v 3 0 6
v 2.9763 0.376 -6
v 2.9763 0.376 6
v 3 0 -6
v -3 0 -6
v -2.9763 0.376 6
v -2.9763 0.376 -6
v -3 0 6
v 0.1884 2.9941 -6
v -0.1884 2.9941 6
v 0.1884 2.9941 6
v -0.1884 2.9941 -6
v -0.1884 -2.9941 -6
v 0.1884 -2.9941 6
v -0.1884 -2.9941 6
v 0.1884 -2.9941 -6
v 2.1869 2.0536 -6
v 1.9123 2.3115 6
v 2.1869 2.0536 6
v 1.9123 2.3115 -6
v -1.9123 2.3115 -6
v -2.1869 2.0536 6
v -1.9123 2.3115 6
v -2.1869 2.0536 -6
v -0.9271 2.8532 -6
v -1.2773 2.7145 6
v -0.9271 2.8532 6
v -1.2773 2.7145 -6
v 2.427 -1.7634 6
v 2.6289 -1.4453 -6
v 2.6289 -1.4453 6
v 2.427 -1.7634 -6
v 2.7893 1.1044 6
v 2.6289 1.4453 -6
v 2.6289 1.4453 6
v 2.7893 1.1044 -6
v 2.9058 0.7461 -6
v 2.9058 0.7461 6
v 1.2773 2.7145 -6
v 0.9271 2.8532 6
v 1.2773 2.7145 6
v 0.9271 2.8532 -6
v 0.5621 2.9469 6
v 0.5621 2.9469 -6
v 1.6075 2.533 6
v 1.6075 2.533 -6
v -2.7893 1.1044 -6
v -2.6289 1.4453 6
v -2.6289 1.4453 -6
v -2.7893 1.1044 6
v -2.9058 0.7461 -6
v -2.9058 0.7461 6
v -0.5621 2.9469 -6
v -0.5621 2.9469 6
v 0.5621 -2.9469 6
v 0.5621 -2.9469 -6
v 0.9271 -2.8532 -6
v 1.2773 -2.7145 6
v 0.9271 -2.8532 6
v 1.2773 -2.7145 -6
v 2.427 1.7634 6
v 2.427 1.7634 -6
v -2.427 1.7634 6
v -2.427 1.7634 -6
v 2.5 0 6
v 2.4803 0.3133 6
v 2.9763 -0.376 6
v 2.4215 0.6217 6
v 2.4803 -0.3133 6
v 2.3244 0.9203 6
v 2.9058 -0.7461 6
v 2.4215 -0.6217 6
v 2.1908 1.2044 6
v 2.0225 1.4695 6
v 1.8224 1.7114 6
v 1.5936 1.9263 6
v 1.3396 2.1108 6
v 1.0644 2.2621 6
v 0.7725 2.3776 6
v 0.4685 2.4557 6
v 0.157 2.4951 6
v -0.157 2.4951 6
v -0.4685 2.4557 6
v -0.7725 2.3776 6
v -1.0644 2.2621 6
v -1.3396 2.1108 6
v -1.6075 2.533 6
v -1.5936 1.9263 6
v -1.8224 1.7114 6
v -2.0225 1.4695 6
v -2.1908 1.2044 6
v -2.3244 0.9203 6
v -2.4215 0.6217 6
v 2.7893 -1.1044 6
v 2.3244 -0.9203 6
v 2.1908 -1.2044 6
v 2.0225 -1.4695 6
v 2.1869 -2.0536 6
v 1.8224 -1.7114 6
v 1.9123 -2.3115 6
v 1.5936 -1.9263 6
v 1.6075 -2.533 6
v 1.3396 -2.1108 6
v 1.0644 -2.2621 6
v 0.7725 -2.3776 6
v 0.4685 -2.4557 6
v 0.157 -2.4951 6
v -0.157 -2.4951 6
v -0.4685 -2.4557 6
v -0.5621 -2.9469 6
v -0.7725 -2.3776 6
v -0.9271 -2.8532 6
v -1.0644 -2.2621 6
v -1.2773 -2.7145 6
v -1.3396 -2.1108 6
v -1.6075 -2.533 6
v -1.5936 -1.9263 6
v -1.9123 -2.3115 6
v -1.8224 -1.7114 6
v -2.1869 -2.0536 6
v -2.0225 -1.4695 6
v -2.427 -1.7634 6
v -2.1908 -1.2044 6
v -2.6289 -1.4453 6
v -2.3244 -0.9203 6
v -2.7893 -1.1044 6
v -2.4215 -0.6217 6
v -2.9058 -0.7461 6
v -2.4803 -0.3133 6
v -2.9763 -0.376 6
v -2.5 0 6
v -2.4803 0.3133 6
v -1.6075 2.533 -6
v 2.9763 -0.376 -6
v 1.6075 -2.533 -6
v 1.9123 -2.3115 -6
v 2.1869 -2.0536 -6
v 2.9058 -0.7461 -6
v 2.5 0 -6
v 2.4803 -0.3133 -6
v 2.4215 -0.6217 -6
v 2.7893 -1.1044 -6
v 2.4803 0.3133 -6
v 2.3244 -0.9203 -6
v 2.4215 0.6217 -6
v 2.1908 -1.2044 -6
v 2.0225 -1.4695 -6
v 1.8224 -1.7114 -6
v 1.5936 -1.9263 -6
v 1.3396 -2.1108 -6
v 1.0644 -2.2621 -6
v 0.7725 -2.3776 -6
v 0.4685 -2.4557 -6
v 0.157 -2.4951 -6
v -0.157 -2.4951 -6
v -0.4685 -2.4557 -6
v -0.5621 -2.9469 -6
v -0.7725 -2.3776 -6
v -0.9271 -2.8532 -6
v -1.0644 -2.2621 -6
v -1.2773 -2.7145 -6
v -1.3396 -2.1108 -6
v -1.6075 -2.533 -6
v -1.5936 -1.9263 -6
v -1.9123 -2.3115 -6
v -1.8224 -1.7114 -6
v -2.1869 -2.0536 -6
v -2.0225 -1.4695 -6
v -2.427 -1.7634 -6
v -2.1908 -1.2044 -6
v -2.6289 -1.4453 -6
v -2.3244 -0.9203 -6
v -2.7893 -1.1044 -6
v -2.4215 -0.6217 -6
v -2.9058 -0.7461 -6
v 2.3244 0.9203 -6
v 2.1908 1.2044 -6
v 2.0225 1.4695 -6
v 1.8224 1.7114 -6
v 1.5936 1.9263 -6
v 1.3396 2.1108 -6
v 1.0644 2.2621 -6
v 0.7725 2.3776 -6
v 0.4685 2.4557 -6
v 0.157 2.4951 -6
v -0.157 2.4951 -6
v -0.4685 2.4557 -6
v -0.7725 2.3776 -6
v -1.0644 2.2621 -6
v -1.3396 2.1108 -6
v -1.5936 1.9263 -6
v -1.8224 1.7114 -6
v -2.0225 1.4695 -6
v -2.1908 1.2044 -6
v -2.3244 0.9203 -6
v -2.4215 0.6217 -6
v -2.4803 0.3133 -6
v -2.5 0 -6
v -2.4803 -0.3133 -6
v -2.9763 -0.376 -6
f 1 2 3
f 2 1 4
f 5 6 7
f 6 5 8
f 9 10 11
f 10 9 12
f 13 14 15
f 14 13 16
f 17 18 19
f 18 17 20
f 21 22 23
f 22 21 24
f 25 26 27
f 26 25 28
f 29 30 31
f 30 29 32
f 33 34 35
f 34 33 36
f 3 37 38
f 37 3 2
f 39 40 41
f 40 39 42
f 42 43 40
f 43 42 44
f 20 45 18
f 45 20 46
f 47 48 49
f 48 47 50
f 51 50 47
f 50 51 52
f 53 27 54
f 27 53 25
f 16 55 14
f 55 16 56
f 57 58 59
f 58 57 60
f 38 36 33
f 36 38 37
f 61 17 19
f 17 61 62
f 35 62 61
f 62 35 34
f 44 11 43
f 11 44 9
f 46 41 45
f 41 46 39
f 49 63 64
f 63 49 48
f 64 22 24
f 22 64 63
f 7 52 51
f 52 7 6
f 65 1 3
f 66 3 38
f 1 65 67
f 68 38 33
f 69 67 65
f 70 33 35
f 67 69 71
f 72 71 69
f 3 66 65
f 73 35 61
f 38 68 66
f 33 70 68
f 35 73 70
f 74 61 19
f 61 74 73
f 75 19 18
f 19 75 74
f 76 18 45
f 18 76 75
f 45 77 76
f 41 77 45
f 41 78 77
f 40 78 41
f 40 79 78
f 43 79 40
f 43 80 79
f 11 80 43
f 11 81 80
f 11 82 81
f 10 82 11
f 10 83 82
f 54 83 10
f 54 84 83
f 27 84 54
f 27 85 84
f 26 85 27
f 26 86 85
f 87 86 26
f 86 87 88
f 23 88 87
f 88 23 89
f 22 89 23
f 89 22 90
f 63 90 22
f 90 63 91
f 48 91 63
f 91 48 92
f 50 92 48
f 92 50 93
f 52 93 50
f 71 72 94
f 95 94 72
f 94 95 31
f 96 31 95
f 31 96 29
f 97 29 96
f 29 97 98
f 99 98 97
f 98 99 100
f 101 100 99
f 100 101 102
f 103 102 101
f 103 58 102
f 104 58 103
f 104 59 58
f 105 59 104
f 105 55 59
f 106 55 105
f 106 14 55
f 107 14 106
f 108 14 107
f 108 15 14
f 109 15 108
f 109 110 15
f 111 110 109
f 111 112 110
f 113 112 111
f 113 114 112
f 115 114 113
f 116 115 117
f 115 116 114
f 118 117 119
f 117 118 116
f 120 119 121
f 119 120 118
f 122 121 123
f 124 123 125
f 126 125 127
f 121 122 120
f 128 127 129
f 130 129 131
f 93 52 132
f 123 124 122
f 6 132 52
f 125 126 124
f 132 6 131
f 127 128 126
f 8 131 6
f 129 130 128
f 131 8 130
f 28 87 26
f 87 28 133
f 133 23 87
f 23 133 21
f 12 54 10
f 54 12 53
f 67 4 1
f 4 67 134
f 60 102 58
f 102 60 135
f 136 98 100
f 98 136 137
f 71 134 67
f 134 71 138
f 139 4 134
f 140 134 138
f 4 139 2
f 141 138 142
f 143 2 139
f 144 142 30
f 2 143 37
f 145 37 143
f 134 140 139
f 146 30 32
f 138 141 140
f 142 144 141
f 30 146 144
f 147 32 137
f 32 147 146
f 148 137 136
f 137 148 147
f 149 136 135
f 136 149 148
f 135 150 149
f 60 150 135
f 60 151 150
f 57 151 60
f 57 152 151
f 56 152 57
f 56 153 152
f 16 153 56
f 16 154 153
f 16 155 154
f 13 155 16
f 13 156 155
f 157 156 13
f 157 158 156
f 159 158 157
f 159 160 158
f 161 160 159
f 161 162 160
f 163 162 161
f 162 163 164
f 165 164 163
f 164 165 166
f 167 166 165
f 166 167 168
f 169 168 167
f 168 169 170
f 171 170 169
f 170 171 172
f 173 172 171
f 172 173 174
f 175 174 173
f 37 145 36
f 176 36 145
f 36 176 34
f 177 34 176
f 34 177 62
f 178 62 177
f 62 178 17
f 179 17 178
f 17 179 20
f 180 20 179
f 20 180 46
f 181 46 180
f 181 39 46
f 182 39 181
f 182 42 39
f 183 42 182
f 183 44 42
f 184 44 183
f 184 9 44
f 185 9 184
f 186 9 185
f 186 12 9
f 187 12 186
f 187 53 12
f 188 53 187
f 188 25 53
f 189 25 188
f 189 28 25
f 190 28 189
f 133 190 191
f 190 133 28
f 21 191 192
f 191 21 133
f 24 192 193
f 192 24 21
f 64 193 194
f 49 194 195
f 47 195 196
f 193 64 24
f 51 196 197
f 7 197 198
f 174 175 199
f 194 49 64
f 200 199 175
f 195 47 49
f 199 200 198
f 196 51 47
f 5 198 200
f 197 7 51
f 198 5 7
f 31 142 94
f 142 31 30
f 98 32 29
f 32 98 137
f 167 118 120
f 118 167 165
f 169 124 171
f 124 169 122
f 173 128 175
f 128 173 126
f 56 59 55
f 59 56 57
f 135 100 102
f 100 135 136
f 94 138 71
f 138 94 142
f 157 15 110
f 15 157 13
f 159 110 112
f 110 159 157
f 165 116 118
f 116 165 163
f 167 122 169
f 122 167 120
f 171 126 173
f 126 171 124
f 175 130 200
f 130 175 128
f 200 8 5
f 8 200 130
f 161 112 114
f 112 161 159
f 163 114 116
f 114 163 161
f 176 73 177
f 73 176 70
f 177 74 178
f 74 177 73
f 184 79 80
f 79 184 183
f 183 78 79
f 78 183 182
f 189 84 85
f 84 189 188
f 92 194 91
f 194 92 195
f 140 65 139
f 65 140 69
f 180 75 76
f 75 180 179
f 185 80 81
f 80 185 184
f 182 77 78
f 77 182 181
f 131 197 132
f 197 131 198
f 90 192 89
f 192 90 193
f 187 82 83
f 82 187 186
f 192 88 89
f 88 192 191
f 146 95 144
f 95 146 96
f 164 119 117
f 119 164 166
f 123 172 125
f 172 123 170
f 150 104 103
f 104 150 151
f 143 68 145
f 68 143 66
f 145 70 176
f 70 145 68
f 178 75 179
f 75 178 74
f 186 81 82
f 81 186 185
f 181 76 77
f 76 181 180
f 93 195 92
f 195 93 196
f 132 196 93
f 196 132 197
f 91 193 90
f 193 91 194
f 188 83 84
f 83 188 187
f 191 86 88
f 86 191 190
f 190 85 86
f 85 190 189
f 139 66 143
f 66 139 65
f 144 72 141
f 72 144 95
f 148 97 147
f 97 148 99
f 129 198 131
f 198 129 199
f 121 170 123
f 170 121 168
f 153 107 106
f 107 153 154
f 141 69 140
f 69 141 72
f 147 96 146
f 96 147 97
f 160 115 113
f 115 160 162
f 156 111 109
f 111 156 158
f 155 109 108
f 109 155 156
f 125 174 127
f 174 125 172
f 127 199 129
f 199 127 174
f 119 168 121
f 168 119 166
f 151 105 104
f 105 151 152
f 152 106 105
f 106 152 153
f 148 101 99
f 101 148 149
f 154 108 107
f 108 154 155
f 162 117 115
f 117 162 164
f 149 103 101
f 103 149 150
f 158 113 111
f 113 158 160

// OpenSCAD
$fn = 50;


difference() {
	union() {
		translate(v = [0, 0, -6.0000000000]) {
			cylinder(h = 12, r = 3.0000000000);
		}
	}
	union() {
		translate(v = [0, 0, -100.0000000000]) {
			cylinder(h = 200, r = 2.5000000000);
		}
	}
}
